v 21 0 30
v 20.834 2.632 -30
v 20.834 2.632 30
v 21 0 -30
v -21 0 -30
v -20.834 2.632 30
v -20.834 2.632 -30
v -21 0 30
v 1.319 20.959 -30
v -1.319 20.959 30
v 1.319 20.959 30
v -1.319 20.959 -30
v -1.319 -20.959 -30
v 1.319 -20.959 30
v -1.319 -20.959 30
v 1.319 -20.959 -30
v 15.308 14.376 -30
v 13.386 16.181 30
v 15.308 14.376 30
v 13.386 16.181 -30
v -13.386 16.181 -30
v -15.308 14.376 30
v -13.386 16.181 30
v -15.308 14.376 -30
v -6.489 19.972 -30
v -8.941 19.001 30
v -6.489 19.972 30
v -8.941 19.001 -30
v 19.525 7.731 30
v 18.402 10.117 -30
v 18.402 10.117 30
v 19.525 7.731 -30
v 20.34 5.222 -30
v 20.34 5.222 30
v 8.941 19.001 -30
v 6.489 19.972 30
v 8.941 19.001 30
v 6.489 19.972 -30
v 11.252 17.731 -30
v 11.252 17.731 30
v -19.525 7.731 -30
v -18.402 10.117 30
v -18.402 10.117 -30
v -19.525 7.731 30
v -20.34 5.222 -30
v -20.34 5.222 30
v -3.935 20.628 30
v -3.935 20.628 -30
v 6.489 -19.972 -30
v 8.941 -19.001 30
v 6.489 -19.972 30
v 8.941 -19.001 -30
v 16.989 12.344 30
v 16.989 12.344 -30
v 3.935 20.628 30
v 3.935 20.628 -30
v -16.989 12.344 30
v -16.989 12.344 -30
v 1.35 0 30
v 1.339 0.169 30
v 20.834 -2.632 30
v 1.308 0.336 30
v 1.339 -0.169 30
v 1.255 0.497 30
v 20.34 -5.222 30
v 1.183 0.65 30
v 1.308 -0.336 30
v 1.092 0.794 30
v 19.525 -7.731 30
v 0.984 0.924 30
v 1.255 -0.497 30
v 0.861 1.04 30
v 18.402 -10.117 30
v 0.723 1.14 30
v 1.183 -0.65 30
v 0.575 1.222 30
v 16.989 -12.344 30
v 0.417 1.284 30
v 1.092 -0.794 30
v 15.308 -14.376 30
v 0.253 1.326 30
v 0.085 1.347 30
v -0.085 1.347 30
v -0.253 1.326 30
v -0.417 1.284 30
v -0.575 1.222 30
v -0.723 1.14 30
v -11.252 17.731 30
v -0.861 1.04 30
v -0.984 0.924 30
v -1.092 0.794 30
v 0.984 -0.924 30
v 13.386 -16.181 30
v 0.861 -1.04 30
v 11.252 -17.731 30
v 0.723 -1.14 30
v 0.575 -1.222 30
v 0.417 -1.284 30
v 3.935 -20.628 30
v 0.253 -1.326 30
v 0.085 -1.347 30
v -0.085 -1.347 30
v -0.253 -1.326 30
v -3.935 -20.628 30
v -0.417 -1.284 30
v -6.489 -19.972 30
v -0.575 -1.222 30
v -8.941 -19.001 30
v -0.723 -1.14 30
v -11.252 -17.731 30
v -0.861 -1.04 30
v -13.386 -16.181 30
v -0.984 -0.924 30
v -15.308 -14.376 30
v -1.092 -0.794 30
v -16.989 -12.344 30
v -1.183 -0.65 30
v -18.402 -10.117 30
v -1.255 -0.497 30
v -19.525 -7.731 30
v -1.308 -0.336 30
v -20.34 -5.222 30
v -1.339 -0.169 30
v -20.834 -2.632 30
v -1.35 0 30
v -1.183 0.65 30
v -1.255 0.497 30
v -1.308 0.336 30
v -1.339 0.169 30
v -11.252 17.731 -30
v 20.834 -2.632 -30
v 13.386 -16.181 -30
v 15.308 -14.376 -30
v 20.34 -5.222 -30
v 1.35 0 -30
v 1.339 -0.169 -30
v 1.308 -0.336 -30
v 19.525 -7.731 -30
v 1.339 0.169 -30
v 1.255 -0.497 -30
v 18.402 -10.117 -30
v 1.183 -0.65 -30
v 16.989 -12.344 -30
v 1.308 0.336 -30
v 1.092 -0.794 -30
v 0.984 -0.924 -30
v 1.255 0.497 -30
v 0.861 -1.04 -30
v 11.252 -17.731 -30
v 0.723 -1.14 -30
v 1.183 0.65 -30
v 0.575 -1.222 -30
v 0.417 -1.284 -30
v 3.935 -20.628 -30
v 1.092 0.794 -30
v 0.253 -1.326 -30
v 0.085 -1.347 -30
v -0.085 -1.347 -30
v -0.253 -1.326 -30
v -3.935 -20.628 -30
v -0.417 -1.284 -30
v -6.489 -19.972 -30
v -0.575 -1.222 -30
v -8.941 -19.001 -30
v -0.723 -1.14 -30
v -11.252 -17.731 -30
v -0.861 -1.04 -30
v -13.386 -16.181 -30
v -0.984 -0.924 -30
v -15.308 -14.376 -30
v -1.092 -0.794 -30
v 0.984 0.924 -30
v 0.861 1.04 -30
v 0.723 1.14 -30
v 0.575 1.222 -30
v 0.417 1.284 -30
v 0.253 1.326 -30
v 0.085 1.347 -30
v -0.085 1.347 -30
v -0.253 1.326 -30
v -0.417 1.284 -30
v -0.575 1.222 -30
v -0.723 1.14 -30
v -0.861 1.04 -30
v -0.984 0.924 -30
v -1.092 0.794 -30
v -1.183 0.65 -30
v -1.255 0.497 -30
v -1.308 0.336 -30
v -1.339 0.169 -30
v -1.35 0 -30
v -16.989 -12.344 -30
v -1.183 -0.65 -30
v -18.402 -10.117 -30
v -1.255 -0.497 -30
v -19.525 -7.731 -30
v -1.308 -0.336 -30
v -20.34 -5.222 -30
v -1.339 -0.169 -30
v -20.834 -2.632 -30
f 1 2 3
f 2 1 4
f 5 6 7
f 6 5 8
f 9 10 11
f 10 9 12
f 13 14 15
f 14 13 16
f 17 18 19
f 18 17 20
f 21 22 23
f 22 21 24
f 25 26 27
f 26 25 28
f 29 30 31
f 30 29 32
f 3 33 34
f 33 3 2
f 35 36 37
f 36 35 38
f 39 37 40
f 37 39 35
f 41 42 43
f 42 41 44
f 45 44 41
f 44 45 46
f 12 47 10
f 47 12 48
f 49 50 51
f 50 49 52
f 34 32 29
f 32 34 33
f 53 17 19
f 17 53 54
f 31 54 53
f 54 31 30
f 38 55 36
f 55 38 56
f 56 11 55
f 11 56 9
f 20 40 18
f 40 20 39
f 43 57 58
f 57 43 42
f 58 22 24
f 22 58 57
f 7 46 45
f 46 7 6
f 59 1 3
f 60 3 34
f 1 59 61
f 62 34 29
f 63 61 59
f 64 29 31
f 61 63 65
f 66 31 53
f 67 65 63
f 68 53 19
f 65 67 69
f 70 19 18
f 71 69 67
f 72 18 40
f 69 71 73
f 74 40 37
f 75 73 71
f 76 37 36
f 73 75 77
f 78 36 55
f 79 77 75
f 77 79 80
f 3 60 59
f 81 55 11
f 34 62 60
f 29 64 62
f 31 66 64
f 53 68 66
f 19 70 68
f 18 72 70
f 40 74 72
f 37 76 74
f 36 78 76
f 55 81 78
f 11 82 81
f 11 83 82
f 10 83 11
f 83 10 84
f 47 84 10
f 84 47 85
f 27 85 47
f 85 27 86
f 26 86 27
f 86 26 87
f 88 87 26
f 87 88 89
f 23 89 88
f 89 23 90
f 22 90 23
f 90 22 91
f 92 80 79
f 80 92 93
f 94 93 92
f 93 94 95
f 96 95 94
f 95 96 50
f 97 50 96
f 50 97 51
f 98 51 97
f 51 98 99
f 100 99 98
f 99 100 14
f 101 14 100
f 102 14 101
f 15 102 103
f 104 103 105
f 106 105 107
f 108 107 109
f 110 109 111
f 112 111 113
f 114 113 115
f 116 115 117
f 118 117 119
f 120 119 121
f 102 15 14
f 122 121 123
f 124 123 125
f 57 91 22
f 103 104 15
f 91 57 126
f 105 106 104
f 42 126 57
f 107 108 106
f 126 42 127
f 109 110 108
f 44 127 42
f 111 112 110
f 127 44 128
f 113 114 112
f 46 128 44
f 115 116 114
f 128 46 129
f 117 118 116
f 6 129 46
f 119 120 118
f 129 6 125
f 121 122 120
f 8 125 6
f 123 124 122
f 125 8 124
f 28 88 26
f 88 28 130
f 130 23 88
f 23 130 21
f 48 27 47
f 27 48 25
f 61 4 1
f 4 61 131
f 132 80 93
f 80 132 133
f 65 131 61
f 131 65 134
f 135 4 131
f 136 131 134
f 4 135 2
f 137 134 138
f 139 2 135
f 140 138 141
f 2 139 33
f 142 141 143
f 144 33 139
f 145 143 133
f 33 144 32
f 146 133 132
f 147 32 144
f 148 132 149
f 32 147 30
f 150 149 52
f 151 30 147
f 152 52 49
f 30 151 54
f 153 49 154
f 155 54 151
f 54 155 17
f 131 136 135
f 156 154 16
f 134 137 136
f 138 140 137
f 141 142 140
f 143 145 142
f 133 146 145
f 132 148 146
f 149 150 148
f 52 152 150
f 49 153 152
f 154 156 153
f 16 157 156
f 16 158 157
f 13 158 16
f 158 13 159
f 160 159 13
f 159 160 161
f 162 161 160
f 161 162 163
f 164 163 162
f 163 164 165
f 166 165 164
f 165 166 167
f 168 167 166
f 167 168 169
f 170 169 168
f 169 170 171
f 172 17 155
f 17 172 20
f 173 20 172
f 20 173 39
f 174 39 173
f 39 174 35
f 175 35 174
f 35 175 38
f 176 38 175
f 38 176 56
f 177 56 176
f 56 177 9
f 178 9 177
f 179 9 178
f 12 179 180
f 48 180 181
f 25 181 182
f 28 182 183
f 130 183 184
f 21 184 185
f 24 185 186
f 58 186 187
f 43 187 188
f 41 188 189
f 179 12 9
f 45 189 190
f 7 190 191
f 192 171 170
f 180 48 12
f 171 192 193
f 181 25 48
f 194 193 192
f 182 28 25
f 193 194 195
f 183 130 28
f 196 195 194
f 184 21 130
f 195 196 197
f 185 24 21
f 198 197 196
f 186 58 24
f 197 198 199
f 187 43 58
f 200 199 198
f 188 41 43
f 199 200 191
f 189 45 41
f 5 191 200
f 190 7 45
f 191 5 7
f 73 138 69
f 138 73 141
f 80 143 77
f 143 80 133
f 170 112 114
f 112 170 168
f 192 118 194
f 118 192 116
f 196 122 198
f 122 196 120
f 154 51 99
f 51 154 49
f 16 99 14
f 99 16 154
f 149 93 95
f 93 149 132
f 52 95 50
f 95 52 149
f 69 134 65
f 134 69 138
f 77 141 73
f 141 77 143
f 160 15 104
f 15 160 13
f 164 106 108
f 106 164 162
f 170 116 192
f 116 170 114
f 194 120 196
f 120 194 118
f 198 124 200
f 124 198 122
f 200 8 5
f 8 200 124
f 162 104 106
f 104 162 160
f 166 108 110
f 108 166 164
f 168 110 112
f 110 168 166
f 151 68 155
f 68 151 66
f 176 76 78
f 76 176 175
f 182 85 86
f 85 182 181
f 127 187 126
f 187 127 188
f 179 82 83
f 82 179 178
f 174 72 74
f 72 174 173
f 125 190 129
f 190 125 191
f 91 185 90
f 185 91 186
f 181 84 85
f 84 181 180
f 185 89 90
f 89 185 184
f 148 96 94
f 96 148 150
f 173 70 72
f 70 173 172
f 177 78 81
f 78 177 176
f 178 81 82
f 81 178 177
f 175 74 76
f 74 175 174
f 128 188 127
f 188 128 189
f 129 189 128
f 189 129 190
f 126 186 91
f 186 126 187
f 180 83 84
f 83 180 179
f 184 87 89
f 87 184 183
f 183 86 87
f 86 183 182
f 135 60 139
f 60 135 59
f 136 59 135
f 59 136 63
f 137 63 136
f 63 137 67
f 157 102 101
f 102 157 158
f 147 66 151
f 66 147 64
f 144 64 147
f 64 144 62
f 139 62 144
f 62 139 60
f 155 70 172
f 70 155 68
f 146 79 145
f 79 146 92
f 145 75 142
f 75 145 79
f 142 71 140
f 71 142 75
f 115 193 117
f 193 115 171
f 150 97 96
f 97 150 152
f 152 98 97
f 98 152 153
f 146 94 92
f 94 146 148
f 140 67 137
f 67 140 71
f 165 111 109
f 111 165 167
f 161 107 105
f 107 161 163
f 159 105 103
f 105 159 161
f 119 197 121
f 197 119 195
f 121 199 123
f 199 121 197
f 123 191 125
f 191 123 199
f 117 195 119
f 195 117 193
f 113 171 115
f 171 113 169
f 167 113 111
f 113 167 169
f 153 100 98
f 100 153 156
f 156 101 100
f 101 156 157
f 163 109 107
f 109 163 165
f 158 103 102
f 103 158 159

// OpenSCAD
$fn = 50;


difference() {
	union() {
		translate(v = [0, 0, -30.0000000000]) {
			cylinder(h = 60, r = 21.0000000000);
		}
	}
	union() {
		translate(v = [0, 0, -100.0000000000]) {
			cylinder(h = 200, r = 1.3500000000);
		}
	}
}
